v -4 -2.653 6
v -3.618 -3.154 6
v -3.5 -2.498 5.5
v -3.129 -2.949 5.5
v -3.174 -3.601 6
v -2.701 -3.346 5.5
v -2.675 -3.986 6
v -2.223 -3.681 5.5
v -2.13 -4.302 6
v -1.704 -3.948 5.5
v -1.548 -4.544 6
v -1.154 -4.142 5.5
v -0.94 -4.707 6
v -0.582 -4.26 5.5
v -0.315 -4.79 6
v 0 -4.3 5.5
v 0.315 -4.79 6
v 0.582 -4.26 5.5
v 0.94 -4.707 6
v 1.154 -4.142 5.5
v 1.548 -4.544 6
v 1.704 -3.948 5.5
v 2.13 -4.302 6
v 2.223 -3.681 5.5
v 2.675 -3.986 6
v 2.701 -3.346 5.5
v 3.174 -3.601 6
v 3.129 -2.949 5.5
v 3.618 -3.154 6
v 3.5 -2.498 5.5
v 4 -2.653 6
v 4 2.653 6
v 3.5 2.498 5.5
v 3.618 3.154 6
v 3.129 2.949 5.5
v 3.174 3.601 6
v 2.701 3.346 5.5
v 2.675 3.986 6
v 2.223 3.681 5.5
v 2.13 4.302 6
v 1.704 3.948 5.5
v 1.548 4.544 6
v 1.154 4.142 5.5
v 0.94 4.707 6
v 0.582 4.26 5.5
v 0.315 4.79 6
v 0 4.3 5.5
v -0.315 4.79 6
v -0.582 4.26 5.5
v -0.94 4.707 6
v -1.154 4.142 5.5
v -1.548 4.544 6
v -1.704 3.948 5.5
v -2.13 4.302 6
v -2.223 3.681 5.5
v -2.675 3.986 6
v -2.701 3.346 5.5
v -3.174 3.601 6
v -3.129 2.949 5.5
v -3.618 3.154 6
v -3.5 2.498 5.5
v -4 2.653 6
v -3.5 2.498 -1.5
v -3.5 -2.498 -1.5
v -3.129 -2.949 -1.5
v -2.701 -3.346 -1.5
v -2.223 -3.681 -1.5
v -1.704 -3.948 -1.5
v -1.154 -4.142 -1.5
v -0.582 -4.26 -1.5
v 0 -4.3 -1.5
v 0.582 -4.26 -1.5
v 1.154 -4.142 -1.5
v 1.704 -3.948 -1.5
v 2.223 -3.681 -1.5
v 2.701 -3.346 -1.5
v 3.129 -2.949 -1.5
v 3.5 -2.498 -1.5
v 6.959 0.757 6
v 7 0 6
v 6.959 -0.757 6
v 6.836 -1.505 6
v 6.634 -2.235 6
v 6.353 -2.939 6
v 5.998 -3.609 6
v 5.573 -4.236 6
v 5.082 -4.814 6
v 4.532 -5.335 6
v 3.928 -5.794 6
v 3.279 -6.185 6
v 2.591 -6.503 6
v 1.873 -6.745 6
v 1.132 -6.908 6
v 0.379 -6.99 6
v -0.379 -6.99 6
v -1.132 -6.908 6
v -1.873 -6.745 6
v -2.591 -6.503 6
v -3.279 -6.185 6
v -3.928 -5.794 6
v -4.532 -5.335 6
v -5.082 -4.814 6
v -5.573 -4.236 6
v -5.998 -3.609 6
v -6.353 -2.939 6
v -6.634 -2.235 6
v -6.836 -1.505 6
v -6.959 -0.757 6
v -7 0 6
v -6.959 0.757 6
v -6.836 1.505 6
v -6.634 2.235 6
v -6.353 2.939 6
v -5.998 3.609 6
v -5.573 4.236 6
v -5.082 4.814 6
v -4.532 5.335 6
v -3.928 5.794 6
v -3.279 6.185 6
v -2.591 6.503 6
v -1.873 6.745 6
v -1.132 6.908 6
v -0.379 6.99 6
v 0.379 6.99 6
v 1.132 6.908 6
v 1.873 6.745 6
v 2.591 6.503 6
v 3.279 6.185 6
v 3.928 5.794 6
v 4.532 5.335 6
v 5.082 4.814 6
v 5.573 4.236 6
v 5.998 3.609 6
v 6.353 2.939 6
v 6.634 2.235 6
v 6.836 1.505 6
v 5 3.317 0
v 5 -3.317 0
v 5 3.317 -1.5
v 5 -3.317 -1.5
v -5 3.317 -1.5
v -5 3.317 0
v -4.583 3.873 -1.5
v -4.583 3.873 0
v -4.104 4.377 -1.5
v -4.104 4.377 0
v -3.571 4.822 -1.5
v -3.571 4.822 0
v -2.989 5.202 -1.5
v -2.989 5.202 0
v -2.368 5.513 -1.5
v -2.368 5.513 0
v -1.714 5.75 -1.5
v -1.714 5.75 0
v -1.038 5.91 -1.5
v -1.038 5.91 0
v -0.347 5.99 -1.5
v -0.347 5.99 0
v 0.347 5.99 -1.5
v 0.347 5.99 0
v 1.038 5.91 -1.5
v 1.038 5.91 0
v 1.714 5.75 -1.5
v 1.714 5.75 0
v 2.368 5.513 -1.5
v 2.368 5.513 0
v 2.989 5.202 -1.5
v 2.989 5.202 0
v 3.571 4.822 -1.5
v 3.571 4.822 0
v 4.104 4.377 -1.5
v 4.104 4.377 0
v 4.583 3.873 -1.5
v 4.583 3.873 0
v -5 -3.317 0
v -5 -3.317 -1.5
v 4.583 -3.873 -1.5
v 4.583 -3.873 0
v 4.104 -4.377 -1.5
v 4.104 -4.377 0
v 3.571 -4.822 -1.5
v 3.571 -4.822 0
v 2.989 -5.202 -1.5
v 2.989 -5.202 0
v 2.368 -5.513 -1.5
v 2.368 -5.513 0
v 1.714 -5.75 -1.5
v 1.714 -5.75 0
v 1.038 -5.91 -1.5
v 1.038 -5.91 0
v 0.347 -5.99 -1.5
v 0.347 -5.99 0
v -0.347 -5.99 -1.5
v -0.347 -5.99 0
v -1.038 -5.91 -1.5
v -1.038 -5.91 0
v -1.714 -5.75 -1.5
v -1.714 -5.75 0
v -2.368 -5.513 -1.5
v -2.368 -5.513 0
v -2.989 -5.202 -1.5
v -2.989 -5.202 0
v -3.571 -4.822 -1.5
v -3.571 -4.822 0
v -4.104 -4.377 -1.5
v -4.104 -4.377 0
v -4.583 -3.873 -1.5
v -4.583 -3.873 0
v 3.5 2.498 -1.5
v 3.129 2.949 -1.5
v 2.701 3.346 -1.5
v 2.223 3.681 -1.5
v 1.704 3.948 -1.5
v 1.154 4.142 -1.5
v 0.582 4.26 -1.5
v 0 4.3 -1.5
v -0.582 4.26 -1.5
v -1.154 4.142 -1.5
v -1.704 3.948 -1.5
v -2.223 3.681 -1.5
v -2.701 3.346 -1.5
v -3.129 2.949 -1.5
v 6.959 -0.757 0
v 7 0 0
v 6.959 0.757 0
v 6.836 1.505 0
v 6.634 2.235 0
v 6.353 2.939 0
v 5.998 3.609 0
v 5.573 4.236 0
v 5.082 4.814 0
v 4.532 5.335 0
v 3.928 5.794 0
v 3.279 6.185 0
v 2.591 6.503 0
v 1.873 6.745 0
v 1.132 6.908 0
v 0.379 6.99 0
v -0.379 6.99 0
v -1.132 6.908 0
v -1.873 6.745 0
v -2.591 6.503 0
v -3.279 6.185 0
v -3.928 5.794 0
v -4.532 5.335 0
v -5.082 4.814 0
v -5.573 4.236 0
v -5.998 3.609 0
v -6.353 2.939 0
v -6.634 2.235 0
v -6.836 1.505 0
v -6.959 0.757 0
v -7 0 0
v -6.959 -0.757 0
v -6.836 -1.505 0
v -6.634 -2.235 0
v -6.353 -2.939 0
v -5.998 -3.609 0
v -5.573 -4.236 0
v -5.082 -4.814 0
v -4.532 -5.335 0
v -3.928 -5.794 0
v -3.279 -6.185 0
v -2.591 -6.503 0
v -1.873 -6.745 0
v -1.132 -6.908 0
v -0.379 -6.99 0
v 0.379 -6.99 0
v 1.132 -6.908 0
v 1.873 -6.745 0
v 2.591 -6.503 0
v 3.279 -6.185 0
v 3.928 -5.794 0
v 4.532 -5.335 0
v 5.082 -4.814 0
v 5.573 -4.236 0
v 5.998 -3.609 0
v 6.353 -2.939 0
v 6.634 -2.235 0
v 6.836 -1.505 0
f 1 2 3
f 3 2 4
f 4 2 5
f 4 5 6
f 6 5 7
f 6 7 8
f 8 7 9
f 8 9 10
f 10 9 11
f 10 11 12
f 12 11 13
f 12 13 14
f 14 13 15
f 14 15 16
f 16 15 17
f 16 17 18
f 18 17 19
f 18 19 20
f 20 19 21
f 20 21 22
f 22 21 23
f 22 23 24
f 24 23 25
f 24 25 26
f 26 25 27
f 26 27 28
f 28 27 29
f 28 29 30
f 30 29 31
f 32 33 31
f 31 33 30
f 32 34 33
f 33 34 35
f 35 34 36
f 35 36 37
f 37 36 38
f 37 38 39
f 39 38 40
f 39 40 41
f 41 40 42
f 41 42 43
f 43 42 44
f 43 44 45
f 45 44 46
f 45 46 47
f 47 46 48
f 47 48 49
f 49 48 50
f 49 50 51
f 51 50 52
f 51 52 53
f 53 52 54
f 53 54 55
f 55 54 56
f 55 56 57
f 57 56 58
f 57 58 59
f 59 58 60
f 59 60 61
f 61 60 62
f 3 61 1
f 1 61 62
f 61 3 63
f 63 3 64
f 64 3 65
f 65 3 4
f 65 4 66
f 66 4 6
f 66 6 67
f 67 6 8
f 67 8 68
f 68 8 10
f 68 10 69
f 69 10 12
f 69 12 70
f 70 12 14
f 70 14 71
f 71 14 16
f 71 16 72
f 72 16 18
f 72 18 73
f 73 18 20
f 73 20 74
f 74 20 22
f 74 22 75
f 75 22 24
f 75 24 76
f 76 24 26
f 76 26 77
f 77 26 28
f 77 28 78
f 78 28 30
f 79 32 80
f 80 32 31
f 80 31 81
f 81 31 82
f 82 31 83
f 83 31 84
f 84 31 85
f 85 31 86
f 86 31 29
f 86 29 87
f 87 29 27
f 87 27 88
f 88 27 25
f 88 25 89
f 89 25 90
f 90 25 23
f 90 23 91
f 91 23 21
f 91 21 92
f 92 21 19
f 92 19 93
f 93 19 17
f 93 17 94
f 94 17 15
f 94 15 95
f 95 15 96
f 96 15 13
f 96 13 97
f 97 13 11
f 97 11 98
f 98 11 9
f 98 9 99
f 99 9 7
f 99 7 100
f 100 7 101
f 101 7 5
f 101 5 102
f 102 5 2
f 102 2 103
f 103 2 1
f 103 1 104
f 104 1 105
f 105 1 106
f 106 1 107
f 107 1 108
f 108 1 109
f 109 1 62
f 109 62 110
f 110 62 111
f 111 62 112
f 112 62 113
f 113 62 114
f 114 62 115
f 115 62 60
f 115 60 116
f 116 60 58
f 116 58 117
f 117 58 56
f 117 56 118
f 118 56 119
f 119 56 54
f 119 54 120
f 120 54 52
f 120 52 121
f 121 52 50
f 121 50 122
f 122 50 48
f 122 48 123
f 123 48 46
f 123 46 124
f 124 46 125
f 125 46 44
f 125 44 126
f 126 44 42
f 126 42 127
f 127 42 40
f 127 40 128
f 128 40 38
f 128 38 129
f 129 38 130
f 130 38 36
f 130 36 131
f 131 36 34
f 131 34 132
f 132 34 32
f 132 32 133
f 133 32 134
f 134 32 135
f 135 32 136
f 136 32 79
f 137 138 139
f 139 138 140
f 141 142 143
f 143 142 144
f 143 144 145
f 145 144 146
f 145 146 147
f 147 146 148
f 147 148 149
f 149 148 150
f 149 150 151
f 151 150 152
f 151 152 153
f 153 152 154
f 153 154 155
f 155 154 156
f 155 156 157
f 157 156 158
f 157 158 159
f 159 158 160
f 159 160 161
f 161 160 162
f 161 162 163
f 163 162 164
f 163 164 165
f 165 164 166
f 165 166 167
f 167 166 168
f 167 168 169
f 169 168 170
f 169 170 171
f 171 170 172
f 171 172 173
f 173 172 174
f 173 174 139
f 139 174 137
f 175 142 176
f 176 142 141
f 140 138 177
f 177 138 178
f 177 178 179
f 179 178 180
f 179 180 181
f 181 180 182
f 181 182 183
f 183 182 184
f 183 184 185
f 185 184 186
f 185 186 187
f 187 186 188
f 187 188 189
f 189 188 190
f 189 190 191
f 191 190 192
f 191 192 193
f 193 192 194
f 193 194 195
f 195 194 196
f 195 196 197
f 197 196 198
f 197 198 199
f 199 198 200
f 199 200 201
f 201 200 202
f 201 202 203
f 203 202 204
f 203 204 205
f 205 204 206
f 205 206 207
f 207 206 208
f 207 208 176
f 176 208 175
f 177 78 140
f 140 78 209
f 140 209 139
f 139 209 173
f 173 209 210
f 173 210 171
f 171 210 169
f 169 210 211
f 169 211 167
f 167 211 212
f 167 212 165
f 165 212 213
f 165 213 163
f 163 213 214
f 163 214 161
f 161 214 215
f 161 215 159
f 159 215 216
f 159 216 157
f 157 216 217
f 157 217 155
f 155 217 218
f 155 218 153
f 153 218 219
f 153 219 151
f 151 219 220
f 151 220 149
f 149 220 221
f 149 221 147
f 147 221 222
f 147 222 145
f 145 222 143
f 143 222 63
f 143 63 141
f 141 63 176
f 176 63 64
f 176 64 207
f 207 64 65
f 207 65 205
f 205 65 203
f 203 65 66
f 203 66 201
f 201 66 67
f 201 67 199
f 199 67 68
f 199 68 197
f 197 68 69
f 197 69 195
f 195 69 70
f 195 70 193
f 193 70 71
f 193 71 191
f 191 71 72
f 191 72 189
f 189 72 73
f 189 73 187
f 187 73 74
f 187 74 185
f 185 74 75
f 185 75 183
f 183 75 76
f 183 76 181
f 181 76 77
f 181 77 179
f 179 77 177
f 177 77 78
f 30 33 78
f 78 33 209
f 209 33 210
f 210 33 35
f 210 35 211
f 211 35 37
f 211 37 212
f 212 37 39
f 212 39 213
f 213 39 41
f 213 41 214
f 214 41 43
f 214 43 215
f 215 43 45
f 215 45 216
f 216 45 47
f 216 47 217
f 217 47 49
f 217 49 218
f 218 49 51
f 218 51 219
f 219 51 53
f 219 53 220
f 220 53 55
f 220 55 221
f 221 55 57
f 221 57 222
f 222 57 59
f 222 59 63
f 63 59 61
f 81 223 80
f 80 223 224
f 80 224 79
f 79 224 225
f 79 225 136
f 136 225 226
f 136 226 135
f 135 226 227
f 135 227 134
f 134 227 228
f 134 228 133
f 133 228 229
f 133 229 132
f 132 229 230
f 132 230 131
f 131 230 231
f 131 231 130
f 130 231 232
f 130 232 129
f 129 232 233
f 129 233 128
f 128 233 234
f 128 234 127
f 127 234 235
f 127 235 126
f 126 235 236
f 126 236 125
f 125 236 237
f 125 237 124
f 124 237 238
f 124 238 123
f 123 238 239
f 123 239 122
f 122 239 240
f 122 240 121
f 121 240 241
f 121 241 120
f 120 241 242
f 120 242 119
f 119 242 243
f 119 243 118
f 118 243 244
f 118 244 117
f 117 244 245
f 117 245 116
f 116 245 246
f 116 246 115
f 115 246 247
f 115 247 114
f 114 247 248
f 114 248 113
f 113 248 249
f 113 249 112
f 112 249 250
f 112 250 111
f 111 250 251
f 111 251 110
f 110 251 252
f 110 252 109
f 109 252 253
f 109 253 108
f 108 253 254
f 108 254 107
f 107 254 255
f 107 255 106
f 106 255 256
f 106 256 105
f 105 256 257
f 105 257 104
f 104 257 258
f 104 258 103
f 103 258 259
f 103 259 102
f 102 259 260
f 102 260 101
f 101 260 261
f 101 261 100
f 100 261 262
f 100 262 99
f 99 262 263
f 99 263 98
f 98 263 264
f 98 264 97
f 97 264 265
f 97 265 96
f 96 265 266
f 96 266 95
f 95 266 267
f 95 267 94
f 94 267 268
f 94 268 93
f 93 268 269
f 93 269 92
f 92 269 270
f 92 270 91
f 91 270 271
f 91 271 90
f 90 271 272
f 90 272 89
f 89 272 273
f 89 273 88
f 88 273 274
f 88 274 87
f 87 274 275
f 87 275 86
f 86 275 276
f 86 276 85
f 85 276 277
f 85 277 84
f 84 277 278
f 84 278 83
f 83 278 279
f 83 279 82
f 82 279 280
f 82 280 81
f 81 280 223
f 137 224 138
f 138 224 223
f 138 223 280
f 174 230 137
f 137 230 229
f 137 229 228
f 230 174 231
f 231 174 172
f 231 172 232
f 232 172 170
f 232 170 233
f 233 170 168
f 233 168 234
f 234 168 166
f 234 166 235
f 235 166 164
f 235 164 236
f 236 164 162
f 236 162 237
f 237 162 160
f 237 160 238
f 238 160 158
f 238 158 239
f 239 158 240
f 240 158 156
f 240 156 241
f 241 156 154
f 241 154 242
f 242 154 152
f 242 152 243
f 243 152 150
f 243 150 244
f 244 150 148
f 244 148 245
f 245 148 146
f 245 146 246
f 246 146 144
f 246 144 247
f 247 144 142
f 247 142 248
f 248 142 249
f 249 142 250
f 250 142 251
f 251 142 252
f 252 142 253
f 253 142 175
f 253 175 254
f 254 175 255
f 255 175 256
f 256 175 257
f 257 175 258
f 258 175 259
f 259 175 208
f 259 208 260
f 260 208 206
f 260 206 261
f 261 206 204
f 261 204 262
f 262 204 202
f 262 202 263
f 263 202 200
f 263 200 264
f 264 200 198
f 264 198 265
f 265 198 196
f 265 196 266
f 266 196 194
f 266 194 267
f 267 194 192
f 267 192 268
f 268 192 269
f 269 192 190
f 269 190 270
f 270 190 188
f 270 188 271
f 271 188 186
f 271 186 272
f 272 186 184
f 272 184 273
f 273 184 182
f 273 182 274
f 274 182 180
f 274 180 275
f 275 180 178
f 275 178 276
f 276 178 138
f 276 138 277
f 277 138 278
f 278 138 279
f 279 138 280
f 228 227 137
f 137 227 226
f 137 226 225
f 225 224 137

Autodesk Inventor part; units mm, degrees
ref_plane "YZ Plane" through (0, 0, 0) normal (1, 0, 0) x (0, 1, 0)
ref_plane "XZ Plane" through (0, 0, 0) normal (0, 1, 0) x (-1, 0, 0)
ref_plane "XY Plane" through (0, 0, 0) normal (0, 0, 1) x (1, 0, 0)
sketch "Эскиз1" plane through (0, 0, 0) normal (0, 0, 1) x (1, 0, 0)
  circle A0 centre (0, 0) radius 7
  circle A1 centre (0, 0) radius 6
  circle A2 centre (0, 0) radius 4.3
  line L0 (2.2504, 0) -> (3.5, 0)
  line L1 (3.5, 0) -> (-3.5, 0)
  line L2 (-3.5, -2.498) -> (-3.5, 2.498)
  line L3 (3.5, -2.498) -> (3.5, 2.498)
  line L4 (-5, 0) -> (5, 0)
  line L5 (-5, 3.3166) -> (-5, -3.3166)
  line L6 (5, -3.3166) -> (5, 3.3166)
  point P0 (-5, -3.3166)
  point P1 (5, -3.3166)
  dimension "d0" = 14
  dimension "d1" = 12
  dimension "d2" = 8.6
  dimension "d3" = 7
  dimension "d4" = 10
extrude "Выдавливание1" add sketch "Эскиз1" along normal blind 6 contours A0 | A1 L6 | L6 L4 A2 L5 A1 | A1 L5 L4 A2 L6 | L5 A1 | L4 L3 A2 | A2 L3 L4 | L4 L2 A2 | A2 L2 L4
extrude "Выдавливание2" add sketch "Эскиз1" against normal blind 1.5 contours L6 L4 A2 L5 A1 | A1 L5 L4 A2 L6 | L4 L3 A2 | A2 L3 L4 | L4 L2 A2 | A2 L2 L4
chamfer "Фаска1" distance 0.5 angle 45 4 edges at (0, 4.3, 6) (-3.5, 0, 6) (0, -4.3, 6) (3.5, 0, 6)
properties part number "ANT_INSULATOR"
